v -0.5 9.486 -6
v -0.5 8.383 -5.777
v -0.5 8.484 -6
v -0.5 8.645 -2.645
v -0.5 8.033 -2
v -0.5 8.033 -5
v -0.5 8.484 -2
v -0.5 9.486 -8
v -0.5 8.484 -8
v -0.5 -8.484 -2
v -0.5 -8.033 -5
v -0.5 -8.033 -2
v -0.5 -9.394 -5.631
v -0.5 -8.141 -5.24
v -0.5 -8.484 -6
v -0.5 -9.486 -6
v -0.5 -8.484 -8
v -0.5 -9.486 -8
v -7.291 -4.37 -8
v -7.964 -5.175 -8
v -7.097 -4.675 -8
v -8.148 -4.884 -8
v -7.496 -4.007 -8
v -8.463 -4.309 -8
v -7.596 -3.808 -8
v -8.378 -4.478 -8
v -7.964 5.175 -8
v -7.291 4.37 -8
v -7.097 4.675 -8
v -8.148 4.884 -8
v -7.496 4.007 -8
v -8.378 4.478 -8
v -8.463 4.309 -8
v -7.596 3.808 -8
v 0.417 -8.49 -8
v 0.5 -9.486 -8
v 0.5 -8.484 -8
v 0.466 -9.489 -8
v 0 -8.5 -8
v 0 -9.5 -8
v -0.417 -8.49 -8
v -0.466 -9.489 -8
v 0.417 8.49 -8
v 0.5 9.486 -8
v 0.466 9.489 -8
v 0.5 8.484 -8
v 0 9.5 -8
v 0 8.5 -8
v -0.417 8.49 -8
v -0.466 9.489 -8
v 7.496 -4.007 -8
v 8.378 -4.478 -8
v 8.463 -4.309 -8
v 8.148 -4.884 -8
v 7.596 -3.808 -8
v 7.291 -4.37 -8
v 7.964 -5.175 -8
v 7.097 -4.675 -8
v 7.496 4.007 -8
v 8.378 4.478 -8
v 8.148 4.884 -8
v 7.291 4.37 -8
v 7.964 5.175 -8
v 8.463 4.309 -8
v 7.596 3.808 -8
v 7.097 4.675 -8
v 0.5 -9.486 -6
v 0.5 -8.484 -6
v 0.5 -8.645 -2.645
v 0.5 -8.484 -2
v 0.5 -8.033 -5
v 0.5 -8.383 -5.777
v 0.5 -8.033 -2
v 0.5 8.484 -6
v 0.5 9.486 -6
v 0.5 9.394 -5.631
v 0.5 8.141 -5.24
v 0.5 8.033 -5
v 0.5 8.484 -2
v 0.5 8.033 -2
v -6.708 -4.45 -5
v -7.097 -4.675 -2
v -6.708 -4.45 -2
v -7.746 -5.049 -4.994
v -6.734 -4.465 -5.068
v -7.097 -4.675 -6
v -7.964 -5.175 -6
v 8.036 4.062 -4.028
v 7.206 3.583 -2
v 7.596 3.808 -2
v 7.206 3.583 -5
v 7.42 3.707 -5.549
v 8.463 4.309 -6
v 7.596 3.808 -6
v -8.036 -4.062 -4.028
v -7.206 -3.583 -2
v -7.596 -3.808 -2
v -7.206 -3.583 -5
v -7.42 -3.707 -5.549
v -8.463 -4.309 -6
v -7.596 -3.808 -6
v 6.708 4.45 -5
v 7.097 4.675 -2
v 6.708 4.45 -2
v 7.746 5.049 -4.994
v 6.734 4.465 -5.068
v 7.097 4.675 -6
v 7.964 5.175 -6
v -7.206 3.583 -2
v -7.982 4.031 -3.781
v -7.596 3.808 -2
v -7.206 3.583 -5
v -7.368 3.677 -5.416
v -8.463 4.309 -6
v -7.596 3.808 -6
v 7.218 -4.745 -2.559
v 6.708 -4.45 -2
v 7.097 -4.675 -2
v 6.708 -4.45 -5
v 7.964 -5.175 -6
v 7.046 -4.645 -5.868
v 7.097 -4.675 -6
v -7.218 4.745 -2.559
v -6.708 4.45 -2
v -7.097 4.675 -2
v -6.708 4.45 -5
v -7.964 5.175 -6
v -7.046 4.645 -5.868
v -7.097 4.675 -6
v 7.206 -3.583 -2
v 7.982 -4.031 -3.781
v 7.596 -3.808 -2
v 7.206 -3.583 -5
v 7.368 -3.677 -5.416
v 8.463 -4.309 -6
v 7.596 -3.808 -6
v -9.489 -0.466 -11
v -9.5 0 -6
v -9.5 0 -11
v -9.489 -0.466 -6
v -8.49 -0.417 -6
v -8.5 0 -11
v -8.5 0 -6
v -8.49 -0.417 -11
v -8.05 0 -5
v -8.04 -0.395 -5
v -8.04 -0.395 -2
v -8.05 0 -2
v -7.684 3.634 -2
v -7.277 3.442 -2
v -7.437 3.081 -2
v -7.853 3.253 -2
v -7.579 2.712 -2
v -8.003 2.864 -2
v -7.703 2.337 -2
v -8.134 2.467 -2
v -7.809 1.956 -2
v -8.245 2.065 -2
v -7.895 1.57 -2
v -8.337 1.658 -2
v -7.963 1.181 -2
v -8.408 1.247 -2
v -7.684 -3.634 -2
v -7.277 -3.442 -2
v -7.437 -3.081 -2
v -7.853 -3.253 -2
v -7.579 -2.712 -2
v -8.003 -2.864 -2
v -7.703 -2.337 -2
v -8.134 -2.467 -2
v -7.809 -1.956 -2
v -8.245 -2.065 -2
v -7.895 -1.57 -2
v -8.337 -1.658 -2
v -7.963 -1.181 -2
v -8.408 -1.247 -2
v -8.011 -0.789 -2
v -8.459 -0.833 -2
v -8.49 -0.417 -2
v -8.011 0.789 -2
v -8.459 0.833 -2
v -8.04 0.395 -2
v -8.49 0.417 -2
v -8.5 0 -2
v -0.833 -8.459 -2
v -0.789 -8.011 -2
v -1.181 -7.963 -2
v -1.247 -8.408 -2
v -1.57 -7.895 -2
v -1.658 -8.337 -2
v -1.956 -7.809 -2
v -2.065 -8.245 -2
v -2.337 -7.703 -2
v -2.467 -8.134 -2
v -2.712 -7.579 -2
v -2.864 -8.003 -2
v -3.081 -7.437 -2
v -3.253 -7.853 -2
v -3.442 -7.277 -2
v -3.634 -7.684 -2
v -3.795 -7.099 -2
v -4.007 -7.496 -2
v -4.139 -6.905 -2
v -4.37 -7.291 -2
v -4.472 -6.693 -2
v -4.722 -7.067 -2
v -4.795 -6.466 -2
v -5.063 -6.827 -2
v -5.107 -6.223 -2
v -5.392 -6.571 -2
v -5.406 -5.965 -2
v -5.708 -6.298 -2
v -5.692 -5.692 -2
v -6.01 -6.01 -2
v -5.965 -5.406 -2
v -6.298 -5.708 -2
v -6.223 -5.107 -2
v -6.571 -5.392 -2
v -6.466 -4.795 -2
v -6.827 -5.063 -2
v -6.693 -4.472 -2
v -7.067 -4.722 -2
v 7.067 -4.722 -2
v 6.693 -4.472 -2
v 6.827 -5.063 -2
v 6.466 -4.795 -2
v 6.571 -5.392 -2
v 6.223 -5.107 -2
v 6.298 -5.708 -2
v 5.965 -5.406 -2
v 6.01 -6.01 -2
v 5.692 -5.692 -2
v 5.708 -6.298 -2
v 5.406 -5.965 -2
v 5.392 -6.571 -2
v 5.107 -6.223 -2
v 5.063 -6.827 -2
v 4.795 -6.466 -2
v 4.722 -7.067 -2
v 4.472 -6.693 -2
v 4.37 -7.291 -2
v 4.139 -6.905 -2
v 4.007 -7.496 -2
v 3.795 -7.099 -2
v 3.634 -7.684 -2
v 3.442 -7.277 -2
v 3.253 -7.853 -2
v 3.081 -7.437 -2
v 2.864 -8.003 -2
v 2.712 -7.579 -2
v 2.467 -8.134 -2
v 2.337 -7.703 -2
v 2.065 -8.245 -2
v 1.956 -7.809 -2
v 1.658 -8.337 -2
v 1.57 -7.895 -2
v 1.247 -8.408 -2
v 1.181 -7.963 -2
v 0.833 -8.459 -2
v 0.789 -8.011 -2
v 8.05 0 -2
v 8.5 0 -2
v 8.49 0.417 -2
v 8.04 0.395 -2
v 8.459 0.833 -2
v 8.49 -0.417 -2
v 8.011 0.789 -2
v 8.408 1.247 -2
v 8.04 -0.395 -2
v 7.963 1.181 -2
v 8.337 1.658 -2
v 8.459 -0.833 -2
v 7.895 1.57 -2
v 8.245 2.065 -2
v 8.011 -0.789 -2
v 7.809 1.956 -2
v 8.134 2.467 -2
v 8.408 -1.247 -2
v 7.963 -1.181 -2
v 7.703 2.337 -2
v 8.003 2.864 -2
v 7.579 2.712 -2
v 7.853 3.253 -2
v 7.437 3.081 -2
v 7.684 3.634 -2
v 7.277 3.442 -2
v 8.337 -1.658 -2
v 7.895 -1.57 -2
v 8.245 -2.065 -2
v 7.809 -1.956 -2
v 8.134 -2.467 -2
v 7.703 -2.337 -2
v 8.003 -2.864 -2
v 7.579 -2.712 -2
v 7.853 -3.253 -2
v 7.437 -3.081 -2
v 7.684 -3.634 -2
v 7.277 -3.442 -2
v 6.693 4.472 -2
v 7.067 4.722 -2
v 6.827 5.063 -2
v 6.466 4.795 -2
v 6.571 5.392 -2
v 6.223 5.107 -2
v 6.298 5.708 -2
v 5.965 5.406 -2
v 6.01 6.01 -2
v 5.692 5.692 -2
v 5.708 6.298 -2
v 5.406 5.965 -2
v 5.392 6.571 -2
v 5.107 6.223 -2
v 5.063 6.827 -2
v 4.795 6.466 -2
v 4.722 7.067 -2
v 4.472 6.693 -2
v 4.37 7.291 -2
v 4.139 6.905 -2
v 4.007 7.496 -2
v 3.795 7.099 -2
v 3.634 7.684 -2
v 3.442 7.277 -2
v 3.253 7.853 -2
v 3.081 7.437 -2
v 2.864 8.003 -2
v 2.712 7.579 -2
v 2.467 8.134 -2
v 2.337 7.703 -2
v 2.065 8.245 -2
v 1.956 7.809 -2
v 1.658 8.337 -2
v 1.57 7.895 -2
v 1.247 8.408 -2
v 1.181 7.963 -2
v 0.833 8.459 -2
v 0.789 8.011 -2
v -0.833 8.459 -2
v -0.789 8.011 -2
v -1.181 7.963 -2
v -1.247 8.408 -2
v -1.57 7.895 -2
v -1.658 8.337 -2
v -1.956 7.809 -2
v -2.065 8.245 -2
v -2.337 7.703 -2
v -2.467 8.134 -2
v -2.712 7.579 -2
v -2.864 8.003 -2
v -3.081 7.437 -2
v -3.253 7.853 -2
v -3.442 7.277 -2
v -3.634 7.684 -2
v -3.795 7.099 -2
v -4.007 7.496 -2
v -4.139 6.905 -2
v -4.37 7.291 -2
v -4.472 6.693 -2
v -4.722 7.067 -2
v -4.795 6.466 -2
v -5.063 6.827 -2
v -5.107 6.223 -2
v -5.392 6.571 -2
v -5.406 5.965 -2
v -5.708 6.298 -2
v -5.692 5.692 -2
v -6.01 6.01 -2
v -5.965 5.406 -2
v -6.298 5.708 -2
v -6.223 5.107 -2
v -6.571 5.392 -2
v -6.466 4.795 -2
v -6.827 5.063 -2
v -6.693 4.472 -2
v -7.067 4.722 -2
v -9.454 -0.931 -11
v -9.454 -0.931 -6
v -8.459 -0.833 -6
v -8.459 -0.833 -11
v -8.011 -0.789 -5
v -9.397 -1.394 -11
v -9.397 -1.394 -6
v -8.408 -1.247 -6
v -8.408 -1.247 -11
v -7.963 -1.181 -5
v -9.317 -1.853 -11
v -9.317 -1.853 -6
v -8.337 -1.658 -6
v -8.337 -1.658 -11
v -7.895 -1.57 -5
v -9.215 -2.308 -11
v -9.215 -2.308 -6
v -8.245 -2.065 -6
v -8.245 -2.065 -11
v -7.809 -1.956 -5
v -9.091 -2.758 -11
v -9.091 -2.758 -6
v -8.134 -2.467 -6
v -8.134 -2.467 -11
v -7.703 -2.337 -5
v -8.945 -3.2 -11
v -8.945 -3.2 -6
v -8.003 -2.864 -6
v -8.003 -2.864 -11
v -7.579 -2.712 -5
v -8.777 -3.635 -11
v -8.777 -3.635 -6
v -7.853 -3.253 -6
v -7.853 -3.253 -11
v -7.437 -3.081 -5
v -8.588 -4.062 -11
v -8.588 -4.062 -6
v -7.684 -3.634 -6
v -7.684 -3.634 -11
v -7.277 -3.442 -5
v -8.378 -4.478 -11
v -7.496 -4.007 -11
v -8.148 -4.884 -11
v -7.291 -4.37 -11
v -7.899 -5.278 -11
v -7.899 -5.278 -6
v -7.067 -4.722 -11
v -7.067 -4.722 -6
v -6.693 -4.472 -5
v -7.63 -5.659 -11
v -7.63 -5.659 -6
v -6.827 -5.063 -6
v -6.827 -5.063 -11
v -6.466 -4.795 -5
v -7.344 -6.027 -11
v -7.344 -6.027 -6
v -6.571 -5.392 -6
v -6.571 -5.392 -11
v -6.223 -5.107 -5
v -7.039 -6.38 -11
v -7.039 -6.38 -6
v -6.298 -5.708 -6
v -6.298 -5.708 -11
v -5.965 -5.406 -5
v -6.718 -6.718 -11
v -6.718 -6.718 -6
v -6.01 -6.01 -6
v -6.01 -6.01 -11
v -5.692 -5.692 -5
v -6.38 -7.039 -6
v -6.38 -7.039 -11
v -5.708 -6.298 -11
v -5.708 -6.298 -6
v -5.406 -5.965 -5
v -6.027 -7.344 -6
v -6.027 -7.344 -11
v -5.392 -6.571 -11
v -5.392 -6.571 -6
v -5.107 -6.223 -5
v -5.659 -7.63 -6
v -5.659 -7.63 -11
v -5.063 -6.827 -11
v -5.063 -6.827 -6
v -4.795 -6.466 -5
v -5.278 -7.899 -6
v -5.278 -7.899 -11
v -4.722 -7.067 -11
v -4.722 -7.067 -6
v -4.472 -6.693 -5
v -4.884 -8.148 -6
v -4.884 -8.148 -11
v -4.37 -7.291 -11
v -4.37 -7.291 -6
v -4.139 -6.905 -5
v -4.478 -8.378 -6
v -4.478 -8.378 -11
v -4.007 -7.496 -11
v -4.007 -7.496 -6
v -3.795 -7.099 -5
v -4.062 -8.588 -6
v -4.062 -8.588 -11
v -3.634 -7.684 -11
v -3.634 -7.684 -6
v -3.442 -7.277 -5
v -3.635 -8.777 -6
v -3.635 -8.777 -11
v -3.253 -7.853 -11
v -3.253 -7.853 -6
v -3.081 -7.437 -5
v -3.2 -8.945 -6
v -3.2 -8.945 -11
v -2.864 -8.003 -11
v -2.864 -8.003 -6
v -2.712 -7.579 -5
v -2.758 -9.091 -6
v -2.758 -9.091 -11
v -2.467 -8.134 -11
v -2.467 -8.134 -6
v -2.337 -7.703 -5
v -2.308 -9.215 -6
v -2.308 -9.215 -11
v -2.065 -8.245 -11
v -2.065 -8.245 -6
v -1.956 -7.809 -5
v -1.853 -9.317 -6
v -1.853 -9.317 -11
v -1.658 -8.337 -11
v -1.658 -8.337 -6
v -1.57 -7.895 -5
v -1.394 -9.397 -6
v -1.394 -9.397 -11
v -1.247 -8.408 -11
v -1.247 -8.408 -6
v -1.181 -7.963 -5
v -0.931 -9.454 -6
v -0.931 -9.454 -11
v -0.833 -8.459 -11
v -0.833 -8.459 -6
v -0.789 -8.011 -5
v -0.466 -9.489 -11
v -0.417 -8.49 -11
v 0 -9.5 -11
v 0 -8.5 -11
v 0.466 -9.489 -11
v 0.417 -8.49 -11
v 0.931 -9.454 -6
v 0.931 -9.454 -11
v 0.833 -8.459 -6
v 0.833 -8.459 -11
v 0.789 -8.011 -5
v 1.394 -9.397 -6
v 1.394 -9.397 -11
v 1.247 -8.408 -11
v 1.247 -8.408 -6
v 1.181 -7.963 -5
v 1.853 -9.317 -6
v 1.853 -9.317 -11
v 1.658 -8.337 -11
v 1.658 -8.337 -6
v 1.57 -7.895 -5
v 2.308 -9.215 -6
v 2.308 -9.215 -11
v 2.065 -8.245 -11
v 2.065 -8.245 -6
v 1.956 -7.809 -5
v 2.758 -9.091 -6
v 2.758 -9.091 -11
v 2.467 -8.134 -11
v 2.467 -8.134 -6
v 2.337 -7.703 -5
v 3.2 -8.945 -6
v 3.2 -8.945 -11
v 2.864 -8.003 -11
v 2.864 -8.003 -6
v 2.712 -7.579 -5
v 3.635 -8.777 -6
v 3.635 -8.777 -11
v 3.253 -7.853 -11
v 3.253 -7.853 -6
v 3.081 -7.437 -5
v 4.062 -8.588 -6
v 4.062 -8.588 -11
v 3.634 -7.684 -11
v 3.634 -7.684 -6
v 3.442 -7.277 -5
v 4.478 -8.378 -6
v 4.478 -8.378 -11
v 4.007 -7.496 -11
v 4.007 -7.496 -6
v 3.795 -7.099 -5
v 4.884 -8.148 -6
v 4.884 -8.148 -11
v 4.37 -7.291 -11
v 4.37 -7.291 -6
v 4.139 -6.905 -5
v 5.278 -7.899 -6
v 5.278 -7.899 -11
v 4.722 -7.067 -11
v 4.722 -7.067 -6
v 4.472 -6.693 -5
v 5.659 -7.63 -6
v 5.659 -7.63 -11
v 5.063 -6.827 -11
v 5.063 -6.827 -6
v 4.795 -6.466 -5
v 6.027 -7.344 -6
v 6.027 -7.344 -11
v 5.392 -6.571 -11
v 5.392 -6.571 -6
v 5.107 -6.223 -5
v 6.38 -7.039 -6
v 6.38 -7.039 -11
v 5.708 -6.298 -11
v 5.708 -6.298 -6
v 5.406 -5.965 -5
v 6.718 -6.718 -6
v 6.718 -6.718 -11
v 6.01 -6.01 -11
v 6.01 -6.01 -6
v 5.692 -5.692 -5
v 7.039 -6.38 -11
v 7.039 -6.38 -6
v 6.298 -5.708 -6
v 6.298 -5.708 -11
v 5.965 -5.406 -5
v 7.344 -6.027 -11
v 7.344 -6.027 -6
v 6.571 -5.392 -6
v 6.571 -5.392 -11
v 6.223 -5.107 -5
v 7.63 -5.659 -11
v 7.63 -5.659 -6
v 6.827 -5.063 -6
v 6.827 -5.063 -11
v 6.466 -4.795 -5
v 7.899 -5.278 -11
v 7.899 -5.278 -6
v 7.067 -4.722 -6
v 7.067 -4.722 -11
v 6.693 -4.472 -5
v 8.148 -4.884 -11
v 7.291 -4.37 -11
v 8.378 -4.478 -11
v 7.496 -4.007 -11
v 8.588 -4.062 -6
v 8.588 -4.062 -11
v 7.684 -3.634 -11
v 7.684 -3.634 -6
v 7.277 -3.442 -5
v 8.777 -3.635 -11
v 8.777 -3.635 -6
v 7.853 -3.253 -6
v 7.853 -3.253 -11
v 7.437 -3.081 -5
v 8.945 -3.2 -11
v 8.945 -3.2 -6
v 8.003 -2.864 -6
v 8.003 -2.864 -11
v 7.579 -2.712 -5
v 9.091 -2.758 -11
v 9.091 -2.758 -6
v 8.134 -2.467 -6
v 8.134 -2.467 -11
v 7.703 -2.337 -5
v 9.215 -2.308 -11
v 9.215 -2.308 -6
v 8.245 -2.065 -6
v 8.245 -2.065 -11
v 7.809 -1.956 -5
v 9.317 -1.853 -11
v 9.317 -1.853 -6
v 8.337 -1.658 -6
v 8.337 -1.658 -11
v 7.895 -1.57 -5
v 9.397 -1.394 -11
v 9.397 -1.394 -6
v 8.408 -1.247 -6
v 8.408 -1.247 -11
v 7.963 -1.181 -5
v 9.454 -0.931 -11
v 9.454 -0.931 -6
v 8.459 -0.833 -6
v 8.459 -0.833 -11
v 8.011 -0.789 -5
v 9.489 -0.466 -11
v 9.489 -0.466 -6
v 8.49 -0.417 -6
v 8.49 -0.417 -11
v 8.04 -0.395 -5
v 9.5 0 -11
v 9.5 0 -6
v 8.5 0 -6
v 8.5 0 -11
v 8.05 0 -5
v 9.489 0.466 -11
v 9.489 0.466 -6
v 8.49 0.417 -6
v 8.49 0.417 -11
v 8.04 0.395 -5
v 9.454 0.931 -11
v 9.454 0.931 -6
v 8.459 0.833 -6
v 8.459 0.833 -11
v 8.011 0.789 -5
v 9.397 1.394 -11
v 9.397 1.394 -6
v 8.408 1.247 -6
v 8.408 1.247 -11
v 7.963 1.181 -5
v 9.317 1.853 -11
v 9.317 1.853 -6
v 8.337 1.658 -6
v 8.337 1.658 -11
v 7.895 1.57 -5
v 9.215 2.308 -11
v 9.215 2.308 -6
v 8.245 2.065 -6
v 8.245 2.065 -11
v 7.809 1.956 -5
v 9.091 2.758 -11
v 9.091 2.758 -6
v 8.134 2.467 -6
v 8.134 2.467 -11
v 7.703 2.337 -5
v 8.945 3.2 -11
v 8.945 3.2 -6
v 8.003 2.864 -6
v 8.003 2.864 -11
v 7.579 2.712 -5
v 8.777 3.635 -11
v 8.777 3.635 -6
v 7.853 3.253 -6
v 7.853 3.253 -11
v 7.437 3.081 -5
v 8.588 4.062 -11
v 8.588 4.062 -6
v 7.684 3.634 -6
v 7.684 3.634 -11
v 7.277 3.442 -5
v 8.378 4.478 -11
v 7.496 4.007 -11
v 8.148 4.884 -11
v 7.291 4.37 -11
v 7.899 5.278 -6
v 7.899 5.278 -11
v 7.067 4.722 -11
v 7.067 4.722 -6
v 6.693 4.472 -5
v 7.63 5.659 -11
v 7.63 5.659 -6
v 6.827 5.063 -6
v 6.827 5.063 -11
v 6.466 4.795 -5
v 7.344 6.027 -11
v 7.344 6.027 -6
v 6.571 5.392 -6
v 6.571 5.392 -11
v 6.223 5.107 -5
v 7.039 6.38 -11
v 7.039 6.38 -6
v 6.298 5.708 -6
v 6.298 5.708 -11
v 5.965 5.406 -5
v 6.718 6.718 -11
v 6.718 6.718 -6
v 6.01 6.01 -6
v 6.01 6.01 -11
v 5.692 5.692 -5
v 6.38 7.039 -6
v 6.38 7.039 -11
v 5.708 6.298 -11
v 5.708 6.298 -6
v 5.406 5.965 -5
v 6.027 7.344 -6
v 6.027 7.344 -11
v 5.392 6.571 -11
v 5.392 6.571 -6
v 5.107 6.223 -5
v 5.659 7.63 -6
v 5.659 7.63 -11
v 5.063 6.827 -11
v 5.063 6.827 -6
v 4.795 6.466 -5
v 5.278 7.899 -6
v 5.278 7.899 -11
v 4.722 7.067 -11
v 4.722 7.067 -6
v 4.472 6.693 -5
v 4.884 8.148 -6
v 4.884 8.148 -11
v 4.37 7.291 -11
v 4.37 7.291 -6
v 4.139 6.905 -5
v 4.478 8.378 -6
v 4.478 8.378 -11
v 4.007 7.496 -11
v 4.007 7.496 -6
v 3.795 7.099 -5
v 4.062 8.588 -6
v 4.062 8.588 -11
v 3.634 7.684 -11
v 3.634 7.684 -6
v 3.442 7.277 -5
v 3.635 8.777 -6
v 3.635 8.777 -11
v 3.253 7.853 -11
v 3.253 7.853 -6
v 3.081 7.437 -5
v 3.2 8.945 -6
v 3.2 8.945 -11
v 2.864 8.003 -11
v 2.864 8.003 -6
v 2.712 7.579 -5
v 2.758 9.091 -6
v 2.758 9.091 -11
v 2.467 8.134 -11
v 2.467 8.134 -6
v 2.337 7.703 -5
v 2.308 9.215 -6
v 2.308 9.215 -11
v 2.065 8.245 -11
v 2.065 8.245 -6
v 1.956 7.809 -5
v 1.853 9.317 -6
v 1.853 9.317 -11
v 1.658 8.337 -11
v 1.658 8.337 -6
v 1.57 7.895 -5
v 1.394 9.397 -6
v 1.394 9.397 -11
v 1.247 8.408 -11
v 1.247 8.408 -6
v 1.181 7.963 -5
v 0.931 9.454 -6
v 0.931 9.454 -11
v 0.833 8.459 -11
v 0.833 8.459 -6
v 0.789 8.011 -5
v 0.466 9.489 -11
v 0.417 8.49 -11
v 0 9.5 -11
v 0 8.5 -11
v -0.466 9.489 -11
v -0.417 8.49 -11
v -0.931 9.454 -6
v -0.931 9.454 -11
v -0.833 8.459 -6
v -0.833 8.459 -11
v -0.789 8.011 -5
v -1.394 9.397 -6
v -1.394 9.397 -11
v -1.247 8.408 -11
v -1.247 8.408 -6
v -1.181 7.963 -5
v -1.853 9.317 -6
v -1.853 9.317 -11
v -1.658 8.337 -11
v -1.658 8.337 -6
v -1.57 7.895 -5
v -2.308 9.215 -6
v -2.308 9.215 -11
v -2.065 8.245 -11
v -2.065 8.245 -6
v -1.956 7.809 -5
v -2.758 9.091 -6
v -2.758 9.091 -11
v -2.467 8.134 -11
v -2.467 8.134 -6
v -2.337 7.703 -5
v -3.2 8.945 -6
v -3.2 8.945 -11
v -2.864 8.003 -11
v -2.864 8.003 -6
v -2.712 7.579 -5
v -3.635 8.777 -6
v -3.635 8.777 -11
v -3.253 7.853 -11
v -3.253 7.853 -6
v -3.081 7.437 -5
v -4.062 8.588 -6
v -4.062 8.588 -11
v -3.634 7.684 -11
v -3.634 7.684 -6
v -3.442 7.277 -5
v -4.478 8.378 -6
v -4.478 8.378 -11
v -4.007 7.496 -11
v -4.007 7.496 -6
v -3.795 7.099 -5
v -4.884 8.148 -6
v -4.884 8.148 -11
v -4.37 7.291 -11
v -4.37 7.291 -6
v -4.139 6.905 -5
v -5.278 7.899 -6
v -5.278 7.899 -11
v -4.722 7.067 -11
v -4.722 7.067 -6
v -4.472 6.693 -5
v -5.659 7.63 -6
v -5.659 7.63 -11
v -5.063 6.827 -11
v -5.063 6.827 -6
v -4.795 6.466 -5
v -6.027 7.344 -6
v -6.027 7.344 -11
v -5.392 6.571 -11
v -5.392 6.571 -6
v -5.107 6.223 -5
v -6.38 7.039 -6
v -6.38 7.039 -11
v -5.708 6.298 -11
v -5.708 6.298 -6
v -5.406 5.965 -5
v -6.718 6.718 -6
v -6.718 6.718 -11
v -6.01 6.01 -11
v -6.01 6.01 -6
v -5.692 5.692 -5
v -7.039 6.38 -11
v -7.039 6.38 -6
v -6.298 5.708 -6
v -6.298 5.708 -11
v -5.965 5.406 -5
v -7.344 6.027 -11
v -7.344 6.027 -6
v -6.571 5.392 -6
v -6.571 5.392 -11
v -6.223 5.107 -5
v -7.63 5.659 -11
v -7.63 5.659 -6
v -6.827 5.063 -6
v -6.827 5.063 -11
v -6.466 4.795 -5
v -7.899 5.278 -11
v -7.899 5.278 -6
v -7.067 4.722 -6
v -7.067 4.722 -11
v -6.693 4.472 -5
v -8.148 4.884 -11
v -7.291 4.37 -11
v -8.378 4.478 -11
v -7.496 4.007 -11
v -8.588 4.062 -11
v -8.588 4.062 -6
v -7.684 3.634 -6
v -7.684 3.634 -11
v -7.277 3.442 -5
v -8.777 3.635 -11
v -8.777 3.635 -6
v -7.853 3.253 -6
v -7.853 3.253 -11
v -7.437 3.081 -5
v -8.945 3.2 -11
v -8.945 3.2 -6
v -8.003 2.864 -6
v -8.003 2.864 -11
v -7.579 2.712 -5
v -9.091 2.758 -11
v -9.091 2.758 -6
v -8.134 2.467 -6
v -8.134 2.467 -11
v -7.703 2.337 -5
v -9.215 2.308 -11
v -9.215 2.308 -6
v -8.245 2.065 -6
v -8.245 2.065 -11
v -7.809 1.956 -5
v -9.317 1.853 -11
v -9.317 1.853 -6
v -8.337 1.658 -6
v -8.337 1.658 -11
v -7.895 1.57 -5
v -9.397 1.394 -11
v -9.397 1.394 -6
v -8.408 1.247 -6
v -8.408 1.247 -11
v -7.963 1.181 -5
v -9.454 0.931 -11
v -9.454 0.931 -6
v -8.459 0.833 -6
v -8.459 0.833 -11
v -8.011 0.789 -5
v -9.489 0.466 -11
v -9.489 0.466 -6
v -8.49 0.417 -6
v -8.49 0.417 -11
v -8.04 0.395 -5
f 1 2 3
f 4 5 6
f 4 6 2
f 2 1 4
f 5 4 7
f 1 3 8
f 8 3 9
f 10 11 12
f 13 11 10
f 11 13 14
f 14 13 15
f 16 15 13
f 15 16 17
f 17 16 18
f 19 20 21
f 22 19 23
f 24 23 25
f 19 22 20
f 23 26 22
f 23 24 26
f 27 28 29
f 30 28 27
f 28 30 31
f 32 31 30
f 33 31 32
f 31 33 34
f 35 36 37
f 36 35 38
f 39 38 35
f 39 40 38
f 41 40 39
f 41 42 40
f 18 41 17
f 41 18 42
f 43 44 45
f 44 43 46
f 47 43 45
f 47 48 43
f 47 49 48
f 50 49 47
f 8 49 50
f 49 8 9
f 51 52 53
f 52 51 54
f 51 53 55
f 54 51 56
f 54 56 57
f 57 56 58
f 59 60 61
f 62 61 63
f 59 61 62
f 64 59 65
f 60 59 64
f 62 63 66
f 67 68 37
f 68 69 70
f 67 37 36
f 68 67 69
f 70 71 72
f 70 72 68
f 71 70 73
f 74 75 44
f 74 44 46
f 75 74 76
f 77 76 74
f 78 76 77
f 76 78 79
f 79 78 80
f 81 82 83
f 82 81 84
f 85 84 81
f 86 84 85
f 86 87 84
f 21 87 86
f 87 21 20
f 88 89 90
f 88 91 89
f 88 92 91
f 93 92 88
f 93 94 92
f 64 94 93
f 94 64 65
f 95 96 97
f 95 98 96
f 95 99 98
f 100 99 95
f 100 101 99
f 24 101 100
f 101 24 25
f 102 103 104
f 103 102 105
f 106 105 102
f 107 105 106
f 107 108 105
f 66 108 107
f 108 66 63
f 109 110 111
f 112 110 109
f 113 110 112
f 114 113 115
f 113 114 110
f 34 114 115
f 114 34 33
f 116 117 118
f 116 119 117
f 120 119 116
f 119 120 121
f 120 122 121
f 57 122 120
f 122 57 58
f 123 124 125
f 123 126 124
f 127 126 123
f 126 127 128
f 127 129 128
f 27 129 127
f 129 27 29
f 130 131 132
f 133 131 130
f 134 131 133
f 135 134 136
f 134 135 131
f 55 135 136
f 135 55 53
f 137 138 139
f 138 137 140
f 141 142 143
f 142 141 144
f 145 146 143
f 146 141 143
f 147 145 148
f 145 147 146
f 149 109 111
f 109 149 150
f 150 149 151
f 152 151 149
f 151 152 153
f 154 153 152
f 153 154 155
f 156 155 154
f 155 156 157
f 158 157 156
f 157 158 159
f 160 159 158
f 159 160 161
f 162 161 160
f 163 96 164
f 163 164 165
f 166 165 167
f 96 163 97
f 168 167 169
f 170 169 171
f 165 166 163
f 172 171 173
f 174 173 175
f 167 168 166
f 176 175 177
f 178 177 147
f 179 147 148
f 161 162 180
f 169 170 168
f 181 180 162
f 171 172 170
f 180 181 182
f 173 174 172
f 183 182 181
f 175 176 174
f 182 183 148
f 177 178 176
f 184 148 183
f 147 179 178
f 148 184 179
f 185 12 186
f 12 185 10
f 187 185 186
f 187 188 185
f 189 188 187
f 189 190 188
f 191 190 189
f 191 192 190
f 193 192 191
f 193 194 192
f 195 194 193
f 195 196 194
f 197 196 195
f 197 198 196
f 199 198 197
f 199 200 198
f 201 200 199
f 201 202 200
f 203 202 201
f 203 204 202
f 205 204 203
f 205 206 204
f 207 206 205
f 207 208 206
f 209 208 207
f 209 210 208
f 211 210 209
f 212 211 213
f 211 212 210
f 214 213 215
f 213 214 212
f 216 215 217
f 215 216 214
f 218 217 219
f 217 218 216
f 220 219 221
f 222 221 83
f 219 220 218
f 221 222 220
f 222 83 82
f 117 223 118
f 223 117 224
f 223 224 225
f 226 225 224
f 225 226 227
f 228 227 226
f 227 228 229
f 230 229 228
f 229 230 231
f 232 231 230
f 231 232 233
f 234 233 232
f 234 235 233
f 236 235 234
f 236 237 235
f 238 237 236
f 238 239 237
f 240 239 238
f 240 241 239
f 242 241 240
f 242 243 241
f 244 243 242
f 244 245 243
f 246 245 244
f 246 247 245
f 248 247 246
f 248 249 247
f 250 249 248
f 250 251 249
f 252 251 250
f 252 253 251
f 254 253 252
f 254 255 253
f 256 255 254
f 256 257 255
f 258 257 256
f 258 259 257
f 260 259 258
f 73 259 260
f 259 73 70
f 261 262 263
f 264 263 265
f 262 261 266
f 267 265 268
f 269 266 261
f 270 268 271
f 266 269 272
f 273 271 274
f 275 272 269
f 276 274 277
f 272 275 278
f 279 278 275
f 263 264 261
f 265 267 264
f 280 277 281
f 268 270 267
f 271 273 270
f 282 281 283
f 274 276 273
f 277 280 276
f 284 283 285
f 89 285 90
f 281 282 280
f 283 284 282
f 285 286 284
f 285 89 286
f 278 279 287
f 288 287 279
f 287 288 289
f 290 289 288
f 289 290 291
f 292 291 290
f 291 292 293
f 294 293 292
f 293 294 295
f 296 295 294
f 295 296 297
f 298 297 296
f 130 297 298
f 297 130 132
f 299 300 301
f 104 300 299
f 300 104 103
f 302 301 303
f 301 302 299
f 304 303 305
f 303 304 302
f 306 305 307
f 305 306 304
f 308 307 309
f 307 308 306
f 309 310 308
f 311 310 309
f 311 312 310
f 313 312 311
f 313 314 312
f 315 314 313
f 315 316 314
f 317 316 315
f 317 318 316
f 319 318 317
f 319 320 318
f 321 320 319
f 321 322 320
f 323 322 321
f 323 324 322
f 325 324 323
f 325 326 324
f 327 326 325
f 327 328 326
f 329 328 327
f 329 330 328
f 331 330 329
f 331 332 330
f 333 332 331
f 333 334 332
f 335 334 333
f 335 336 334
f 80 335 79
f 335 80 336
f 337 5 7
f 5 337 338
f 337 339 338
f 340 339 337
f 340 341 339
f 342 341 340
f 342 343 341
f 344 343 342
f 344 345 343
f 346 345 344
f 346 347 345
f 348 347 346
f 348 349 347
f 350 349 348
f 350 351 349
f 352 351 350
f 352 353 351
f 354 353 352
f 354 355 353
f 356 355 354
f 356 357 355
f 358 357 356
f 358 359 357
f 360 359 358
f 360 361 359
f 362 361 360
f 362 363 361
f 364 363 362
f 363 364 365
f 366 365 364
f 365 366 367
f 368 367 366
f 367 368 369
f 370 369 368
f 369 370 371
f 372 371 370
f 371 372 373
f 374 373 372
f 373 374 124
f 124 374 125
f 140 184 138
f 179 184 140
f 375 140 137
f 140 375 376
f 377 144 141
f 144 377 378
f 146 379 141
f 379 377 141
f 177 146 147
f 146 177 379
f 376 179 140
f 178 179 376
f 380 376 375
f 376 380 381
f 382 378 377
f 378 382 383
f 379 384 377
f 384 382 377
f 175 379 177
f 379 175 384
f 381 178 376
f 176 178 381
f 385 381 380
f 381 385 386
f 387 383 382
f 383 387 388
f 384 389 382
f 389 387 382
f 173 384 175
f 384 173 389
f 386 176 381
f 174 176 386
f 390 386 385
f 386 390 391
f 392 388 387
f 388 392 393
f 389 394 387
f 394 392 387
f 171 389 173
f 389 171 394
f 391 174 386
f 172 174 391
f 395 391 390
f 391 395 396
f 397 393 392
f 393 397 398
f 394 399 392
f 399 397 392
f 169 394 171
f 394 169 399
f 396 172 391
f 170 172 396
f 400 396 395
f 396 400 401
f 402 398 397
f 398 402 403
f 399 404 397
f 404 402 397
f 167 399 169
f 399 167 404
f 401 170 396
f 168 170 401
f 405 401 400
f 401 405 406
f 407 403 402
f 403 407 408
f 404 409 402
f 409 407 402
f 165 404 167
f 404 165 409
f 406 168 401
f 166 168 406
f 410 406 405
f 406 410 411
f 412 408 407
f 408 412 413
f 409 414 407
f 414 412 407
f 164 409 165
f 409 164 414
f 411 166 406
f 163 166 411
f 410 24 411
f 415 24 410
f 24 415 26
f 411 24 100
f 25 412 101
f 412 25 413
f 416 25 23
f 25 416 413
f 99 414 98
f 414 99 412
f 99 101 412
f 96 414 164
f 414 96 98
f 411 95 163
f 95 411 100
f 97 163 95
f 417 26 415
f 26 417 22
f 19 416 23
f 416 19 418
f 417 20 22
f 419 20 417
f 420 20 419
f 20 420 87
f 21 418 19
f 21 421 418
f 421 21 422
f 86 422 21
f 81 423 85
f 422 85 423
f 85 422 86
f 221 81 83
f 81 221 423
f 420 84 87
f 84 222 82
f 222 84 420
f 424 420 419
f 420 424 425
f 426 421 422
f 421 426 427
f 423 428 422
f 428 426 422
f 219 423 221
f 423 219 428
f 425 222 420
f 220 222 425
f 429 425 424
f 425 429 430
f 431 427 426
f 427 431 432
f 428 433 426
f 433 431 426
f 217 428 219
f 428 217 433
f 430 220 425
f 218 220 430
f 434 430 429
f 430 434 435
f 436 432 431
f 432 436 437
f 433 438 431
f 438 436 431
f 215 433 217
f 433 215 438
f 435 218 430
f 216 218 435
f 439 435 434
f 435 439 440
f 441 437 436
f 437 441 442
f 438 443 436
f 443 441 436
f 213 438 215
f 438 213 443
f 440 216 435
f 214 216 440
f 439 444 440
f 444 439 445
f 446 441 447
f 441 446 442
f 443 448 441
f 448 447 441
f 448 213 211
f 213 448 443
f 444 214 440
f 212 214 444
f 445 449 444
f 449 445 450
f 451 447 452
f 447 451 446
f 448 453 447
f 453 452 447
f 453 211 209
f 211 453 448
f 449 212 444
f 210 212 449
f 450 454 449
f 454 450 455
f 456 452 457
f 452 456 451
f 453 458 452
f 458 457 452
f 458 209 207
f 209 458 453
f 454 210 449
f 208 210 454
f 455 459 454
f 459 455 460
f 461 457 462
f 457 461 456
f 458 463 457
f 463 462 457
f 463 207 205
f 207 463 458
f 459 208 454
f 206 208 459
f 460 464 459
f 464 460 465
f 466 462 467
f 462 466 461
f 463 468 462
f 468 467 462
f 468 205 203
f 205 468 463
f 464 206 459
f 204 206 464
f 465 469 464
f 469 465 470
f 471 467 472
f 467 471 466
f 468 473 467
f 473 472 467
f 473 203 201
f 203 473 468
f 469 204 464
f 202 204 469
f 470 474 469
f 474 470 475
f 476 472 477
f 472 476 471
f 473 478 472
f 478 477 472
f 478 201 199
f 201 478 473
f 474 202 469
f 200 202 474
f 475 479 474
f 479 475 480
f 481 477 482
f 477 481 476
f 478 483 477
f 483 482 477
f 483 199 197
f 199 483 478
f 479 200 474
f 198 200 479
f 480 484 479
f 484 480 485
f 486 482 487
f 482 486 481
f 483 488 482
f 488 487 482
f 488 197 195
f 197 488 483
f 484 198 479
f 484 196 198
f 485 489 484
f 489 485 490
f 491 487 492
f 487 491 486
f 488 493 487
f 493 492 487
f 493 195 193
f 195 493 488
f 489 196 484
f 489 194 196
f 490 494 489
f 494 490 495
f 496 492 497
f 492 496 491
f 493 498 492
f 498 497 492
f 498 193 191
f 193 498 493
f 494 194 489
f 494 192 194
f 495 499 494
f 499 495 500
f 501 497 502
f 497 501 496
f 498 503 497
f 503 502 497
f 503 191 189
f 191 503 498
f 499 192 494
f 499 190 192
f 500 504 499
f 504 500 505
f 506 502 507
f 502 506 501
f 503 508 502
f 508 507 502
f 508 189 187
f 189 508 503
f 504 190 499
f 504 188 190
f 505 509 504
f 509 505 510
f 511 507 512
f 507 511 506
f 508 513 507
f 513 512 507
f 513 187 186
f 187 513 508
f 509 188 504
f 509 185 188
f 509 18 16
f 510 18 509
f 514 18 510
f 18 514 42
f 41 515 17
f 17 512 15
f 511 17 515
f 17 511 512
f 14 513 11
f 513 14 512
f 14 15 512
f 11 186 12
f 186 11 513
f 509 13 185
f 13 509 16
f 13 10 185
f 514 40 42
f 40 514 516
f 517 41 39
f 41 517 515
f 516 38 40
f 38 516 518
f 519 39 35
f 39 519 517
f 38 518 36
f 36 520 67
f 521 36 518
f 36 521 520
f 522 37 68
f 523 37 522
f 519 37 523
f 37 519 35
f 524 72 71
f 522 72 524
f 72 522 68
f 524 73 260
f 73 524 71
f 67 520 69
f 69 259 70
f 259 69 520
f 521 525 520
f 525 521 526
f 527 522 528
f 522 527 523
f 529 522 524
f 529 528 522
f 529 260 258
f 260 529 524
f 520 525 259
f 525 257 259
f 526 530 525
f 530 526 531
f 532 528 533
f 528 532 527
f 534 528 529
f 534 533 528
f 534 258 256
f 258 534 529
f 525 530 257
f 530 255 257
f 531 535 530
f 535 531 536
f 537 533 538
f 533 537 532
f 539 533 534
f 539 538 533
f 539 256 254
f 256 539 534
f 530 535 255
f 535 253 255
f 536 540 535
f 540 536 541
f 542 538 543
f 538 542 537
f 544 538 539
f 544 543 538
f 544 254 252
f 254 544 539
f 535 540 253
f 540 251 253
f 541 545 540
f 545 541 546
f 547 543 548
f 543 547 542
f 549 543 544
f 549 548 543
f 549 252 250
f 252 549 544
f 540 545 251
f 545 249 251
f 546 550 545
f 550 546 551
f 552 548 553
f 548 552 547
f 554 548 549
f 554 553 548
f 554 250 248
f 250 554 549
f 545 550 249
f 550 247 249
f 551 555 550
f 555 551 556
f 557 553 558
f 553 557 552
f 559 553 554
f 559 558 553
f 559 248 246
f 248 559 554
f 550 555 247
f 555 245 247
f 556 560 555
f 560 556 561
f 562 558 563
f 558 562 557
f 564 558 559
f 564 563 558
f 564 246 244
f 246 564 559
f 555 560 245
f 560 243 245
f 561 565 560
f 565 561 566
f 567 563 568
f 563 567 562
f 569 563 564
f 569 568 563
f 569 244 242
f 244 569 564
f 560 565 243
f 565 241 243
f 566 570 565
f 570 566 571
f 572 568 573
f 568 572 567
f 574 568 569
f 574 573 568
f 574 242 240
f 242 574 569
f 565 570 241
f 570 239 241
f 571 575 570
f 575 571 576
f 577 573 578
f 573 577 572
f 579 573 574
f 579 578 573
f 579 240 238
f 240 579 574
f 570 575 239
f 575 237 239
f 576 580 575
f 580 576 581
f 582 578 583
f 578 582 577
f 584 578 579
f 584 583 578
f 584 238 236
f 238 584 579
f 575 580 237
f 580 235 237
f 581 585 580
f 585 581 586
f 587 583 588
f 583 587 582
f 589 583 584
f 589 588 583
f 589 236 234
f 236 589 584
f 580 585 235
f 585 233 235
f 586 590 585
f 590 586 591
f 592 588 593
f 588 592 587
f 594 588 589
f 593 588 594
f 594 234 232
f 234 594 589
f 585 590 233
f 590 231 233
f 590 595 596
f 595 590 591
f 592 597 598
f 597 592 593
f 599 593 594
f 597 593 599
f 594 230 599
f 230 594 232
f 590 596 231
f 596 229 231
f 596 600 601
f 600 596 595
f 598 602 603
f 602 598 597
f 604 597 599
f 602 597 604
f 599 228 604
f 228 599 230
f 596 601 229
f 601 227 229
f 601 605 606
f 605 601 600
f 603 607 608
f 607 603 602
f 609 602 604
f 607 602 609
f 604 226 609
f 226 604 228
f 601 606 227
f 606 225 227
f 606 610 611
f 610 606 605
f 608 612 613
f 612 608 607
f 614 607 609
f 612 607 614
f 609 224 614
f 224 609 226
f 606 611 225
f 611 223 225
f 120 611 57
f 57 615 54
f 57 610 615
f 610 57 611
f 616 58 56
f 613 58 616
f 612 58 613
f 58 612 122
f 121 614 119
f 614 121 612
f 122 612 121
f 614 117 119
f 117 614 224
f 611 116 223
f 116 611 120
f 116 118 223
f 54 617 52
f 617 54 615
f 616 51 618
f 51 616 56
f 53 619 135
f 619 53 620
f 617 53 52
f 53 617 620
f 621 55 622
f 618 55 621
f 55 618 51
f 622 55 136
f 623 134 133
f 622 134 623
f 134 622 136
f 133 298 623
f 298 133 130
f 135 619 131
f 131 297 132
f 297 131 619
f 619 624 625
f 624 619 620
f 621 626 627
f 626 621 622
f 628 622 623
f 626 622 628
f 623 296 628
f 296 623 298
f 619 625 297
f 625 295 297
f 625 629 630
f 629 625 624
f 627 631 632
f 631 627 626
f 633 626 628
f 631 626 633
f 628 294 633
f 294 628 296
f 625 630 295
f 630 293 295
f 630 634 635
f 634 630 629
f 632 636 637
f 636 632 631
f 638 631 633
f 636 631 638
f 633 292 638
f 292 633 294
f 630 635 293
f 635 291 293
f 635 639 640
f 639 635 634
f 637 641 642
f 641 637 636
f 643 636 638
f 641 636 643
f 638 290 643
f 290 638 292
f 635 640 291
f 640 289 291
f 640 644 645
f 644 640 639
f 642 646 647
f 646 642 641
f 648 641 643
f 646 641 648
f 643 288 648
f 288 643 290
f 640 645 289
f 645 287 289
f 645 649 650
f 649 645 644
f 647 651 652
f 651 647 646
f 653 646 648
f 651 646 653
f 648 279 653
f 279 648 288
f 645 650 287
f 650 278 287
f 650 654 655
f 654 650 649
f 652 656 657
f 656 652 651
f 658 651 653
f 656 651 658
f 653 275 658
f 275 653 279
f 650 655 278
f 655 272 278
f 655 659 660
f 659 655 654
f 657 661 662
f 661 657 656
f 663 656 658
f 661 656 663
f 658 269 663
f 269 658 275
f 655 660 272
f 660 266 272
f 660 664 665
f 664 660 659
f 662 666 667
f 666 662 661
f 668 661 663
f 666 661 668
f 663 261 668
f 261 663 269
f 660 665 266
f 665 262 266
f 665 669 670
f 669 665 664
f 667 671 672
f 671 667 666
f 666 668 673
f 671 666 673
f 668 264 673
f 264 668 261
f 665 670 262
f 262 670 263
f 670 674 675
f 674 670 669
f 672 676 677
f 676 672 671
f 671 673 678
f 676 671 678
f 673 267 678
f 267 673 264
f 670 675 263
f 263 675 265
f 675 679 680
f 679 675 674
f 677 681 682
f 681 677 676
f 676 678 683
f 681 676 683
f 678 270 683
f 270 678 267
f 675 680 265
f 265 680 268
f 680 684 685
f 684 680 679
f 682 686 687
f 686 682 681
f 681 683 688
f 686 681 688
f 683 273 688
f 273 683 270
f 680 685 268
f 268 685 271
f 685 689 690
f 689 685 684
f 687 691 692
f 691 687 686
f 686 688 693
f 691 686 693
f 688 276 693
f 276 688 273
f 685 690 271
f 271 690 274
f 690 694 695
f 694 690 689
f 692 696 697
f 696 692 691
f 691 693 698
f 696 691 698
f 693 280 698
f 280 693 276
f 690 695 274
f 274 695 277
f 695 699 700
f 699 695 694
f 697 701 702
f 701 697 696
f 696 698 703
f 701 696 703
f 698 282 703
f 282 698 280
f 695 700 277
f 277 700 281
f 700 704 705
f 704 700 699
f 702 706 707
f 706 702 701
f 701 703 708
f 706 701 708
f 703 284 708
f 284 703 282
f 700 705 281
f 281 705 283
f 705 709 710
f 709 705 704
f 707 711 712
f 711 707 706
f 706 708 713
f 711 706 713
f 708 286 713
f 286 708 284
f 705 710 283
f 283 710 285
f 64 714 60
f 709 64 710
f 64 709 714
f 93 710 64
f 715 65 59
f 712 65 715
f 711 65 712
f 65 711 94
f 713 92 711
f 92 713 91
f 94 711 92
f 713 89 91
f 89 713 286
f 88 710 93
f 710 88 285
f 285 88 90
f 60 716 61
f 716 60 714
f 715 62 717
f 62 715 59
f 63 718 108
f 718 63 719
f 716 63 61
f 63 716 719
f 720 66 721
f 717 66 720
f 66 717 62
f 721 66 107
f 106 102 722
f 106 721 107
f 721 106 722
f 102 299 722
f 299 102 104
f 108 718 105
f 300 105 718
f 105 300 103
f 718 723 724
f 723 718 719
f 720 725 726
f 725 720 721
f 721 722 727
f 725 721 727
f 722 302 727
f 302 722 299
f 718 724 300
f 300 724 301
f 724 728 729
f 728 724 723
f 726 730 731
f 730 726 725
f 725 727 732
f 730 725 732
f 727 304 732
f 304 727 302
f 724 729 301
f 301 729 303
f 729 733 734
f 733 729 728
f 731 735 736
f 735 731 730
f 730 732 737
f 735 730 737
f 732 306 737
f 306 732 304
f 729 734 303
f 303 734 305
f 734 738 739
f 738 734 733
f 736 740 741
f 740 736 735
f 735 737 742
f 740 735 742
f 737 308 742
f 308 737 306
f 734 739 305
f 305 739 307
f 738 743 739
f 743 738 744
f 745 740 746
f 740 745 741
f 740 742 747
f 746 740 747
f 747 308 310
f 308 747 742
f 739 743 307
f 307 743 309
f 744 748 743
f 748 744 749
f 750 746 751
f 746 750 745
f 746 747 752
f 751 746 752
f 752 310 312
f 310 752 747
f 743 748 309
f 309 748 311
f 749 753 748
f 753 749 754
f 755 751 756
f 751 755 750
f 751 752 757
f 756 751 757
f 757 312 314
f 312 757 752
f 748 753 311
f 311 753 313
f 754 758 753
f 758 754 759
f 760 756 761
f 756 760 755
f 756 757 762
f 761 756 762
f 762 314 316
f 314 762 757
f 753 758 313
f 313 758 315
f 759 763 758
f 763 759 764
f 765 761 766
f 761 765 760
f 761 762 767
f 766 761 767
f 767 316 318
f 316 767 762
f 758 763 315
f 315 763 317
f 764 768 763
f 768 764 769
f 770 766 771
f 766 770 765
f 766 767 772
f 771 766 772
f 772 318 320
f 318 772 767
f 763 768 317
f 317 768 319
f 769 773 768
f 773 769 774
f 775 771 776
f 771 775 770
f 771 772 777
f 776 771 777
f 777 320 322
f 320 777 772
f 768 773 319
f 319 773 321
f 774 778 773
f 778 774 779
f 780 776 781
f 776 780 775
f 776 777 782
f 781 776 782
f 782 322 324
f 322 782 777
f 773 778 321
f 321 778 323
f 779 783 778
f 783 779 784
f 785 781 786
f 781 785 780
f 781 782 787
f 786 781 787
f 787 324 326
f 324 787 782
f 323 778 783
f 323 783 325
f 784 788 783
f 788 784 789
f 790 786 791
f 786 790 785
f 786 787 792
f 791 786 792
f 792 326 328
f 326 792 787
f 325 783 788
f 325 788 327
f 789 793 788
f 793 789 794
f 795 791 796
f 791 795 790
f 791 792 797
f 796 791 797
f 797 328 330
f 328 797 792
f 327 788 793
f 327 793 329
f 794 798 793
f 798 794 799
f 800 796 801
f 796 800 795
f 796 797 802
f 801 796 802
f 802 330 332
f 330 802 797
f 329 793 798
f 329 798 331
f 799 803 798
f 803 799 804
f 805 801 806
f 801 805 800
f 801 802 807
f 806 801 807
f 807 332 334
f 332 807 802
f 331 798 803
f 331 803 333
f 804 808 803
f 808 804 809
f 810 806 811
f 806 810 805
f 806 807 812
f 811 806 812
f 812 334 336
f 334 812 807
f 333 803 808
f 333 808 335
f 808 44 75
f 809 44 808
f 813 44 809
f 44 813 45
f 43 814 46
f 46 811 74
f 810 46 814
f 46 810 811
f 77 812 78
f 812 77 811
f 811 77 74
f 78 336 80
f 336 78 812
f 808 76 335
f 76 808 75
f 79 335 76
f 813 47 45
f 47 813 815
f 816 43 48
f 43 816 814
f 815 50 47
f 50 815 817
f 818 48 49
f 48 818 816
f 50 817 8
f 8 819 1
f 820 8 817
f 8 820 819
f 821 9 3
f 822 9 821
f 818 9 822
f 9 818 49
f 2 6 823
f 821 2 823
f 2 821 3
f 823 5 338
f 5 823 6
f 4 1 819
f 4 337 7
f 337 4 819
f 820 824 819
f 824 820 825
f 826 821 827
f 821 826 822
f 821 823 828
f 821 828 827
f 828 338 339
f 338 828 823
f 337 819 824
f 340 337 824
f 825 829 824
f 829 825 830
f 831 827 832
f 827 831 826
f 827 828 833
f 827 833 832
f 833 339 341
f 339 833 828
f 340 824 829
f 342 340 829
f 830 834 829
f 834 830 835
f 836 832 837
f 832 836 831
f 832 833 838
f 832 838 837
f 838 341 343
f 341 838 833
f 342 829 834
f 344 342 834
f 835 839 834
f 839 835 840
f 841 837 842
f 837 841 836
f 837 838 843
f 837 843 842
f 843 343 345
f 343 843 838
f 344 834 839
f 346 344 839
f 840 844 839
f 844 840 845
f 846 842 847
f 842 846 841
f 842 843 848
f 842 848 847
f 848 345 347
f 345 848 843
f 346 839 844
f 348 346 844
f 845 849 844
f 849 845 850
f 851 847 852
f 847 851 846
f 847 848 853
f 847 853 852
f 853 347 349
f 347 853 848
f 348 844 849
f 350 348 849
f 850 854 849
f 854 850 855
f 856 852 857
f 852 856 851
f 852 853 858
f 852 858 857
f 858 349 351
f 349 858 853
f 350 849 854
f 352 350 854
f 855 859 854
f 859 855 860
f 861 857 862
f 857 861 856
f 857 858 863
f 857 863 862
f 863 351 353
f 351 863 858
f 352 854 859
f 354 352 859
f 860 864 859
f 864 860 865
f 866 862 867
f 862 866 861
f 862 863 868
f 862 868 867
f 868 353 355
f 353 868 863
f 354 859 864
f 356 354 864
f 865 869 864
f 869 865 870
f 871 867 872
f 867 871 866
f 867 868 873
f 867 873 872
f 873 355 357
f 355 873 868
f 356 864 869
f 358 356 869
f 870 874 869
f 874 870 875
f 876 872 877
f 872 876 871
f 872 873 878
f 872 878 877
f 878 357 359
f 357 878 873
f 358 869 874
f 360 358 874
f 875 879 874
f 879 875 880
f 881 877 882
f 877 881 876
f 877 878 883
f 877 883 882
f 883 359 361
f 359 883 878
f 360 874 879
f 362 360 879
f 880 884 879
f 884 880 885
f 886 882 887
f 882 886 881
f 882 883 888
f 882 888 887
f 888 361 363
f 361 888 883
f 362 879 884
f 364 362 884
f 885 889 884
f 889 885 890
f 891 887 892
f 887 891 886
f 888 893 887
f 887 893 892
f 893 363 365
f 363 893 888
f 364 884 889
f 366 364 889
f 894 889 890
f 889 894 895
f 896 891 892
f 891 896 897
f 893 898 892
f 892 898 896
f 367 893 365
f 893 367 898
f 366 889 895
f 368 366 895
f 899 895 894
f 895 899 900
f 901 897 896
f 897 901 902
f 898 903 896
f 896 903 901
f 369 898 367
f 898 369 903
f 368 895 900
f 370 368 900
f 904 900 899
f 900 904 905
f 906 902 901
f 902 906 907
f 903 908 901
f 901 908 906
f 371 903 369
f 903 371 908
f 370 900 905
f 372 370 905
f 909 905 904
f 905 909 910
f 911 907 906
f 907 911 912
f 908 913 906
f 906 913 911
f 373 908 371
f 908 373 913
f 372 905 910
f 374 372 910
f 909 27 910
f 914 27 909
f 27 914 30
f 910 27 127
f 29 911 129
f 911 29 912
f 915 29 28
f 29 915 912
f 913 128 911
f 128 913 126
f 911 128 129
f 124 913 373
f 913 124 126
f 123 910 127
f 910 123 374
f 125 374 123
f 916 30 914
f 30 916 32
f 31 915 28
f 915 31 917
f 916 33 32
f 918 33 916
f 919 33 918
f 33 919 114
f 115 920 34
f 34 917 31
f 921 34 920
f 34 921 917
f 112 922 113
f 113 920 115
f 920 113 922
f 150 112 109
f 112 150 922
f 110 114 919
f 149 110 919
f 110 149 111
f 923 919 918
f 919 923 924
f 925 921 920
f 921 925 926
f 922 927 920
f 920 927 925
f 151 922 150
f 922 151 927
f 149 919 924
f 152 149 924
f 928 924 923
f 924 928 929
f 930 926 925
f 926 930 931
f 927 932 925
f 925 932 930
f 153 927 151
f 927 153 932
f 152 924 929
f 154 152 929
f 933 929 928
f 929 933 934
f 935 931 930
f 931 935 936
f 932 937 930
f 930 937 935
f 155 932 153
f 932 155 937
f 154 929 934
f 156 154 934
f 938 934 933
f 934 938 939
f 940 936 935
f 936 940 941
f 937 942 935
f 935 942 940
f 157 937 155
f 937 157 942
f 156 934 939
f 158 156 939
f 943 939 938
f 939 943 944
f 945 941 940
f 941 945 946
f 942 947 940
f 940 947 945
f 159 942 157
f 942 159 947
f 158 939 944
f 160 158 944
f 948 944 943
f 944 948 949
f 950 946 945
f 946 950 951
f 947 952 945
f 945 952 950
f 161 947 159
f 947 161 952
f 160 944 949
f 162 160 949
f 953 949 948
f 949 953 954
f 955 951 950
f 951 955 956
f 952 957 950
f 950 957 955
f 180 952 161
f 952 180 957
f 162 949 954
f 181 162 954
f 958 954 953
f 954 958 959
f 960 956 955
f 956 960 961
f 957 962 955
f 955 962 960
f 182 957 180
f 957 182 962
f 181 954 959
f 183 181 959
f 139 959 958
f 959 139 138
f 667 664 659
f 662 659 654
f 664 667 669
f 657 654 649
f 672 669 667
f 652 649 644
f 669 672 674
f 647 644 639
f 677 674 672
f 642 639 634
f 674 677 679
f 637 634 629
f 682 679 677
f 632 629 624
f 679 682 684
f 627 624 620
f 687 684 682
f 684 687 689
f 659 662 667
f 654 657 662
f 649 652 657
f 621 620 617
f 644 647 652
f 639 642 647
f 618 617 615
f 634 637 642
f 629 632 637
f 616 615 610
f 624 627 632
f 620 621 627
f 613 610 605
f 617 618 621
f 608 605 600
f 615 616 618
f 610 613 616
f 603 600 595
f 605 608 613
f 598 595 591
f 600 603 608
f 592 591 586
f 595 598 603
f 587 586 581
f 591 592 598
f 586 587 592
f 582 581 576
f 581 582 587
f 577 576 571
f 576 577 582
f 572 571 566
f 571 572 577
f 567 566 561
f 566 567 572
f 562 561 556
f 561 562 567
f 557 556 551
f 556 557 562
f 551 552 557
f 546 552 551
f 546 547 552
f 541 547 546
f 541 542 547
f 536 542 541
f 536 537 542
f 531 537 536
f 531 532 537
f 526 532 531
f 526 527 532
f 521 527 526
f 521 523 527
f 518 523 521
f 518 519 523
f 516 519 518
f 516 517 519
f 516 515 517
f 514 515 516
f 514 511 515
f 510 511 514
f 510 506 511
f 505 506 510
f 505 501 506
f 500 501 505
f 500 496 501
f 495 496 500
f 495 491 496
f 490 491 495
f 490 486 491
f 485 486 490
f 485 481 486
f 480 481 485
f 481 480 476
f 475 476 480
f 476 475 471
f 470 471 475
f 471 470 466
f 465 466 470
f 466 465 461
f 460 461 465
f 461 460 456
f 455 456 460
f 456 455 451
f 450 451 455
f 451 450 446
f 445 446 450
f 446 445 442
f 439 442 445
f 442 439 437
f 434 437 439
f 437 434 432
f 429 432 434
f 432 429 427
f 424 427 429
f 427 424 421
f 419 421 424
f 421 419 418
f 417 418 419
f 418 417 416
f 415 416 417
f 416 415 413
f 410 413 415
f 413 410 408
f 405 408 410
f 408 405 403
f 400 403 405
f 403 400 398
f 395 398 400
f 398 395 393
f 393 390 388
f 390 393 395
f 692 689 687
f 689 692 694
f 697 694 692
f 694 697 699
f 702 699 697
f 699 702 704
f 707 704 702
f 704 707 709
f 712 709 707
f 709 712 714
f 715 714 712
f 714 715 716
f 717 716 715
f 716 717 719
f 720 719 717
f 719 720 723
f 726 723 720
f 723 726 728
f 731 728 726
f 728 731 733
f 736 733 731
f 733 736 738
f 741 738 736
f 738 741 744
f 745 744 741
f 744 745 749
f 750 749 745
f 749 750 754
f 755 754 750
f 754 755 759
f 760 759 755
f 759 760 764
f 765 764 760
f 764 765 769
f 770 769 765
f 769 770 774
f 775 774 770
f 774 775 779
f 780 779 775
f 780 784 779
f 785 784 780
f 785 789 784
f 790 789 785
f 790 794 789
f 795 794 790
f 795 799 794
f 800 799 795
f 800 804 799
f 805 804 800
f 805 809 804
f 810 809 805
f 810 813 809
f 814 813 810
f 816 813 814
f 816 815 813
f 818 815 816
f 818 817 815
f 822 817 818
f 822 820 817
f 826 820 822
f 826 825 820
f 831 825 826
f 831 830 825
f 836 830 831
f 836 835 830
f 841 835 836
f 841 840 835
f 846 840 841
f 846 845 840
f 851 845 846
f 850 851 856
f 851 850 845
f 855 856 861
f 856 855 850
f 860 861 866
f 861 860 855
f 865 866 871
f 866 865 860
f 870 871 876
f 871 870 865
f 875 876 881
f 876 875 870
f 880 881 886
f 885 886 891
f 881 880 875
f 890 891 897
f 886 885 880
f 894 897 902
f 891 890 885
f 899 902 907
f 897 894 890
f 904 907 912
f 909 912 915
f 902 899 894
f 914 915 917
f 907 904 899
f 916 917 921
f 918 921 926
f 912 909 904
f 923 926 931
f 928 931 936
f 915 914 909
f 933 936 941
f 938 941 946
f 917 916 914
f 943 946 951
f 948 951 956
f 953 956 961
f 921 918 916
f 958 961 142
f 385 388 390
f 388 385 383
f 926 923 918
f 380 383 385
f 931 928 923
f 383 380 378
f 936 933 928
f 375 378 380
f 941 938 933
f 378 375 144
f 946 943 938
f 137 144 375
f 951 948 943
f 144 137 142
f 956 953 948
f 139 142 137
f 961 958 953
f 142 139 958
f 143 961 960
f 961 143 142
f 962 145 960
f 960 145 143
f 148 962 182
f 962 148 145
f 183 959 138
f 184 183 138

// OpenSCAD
$fn = 128;

Crown(is_printable = true);

module Crown(
    is_printable = false
) {
    if (is_printable) {
        rotate(180, [1, 0, 0]) Crown(is_printable = false);
    } else {
        difference() {
            rotate_extrude() {
                polygon([
                    [9.5, 6], 
                    [8.5, 2], 
                    [8.05, 2],
                    [8.05, 5],
                    [8.5, 6],
                    [8.5, 11],
                    [9.5, 11], 
                ]);
            }
            for(a=[0:60:180]) {
                rotate(a) cube([1,30,16], true);
            }
        }
    }
}
